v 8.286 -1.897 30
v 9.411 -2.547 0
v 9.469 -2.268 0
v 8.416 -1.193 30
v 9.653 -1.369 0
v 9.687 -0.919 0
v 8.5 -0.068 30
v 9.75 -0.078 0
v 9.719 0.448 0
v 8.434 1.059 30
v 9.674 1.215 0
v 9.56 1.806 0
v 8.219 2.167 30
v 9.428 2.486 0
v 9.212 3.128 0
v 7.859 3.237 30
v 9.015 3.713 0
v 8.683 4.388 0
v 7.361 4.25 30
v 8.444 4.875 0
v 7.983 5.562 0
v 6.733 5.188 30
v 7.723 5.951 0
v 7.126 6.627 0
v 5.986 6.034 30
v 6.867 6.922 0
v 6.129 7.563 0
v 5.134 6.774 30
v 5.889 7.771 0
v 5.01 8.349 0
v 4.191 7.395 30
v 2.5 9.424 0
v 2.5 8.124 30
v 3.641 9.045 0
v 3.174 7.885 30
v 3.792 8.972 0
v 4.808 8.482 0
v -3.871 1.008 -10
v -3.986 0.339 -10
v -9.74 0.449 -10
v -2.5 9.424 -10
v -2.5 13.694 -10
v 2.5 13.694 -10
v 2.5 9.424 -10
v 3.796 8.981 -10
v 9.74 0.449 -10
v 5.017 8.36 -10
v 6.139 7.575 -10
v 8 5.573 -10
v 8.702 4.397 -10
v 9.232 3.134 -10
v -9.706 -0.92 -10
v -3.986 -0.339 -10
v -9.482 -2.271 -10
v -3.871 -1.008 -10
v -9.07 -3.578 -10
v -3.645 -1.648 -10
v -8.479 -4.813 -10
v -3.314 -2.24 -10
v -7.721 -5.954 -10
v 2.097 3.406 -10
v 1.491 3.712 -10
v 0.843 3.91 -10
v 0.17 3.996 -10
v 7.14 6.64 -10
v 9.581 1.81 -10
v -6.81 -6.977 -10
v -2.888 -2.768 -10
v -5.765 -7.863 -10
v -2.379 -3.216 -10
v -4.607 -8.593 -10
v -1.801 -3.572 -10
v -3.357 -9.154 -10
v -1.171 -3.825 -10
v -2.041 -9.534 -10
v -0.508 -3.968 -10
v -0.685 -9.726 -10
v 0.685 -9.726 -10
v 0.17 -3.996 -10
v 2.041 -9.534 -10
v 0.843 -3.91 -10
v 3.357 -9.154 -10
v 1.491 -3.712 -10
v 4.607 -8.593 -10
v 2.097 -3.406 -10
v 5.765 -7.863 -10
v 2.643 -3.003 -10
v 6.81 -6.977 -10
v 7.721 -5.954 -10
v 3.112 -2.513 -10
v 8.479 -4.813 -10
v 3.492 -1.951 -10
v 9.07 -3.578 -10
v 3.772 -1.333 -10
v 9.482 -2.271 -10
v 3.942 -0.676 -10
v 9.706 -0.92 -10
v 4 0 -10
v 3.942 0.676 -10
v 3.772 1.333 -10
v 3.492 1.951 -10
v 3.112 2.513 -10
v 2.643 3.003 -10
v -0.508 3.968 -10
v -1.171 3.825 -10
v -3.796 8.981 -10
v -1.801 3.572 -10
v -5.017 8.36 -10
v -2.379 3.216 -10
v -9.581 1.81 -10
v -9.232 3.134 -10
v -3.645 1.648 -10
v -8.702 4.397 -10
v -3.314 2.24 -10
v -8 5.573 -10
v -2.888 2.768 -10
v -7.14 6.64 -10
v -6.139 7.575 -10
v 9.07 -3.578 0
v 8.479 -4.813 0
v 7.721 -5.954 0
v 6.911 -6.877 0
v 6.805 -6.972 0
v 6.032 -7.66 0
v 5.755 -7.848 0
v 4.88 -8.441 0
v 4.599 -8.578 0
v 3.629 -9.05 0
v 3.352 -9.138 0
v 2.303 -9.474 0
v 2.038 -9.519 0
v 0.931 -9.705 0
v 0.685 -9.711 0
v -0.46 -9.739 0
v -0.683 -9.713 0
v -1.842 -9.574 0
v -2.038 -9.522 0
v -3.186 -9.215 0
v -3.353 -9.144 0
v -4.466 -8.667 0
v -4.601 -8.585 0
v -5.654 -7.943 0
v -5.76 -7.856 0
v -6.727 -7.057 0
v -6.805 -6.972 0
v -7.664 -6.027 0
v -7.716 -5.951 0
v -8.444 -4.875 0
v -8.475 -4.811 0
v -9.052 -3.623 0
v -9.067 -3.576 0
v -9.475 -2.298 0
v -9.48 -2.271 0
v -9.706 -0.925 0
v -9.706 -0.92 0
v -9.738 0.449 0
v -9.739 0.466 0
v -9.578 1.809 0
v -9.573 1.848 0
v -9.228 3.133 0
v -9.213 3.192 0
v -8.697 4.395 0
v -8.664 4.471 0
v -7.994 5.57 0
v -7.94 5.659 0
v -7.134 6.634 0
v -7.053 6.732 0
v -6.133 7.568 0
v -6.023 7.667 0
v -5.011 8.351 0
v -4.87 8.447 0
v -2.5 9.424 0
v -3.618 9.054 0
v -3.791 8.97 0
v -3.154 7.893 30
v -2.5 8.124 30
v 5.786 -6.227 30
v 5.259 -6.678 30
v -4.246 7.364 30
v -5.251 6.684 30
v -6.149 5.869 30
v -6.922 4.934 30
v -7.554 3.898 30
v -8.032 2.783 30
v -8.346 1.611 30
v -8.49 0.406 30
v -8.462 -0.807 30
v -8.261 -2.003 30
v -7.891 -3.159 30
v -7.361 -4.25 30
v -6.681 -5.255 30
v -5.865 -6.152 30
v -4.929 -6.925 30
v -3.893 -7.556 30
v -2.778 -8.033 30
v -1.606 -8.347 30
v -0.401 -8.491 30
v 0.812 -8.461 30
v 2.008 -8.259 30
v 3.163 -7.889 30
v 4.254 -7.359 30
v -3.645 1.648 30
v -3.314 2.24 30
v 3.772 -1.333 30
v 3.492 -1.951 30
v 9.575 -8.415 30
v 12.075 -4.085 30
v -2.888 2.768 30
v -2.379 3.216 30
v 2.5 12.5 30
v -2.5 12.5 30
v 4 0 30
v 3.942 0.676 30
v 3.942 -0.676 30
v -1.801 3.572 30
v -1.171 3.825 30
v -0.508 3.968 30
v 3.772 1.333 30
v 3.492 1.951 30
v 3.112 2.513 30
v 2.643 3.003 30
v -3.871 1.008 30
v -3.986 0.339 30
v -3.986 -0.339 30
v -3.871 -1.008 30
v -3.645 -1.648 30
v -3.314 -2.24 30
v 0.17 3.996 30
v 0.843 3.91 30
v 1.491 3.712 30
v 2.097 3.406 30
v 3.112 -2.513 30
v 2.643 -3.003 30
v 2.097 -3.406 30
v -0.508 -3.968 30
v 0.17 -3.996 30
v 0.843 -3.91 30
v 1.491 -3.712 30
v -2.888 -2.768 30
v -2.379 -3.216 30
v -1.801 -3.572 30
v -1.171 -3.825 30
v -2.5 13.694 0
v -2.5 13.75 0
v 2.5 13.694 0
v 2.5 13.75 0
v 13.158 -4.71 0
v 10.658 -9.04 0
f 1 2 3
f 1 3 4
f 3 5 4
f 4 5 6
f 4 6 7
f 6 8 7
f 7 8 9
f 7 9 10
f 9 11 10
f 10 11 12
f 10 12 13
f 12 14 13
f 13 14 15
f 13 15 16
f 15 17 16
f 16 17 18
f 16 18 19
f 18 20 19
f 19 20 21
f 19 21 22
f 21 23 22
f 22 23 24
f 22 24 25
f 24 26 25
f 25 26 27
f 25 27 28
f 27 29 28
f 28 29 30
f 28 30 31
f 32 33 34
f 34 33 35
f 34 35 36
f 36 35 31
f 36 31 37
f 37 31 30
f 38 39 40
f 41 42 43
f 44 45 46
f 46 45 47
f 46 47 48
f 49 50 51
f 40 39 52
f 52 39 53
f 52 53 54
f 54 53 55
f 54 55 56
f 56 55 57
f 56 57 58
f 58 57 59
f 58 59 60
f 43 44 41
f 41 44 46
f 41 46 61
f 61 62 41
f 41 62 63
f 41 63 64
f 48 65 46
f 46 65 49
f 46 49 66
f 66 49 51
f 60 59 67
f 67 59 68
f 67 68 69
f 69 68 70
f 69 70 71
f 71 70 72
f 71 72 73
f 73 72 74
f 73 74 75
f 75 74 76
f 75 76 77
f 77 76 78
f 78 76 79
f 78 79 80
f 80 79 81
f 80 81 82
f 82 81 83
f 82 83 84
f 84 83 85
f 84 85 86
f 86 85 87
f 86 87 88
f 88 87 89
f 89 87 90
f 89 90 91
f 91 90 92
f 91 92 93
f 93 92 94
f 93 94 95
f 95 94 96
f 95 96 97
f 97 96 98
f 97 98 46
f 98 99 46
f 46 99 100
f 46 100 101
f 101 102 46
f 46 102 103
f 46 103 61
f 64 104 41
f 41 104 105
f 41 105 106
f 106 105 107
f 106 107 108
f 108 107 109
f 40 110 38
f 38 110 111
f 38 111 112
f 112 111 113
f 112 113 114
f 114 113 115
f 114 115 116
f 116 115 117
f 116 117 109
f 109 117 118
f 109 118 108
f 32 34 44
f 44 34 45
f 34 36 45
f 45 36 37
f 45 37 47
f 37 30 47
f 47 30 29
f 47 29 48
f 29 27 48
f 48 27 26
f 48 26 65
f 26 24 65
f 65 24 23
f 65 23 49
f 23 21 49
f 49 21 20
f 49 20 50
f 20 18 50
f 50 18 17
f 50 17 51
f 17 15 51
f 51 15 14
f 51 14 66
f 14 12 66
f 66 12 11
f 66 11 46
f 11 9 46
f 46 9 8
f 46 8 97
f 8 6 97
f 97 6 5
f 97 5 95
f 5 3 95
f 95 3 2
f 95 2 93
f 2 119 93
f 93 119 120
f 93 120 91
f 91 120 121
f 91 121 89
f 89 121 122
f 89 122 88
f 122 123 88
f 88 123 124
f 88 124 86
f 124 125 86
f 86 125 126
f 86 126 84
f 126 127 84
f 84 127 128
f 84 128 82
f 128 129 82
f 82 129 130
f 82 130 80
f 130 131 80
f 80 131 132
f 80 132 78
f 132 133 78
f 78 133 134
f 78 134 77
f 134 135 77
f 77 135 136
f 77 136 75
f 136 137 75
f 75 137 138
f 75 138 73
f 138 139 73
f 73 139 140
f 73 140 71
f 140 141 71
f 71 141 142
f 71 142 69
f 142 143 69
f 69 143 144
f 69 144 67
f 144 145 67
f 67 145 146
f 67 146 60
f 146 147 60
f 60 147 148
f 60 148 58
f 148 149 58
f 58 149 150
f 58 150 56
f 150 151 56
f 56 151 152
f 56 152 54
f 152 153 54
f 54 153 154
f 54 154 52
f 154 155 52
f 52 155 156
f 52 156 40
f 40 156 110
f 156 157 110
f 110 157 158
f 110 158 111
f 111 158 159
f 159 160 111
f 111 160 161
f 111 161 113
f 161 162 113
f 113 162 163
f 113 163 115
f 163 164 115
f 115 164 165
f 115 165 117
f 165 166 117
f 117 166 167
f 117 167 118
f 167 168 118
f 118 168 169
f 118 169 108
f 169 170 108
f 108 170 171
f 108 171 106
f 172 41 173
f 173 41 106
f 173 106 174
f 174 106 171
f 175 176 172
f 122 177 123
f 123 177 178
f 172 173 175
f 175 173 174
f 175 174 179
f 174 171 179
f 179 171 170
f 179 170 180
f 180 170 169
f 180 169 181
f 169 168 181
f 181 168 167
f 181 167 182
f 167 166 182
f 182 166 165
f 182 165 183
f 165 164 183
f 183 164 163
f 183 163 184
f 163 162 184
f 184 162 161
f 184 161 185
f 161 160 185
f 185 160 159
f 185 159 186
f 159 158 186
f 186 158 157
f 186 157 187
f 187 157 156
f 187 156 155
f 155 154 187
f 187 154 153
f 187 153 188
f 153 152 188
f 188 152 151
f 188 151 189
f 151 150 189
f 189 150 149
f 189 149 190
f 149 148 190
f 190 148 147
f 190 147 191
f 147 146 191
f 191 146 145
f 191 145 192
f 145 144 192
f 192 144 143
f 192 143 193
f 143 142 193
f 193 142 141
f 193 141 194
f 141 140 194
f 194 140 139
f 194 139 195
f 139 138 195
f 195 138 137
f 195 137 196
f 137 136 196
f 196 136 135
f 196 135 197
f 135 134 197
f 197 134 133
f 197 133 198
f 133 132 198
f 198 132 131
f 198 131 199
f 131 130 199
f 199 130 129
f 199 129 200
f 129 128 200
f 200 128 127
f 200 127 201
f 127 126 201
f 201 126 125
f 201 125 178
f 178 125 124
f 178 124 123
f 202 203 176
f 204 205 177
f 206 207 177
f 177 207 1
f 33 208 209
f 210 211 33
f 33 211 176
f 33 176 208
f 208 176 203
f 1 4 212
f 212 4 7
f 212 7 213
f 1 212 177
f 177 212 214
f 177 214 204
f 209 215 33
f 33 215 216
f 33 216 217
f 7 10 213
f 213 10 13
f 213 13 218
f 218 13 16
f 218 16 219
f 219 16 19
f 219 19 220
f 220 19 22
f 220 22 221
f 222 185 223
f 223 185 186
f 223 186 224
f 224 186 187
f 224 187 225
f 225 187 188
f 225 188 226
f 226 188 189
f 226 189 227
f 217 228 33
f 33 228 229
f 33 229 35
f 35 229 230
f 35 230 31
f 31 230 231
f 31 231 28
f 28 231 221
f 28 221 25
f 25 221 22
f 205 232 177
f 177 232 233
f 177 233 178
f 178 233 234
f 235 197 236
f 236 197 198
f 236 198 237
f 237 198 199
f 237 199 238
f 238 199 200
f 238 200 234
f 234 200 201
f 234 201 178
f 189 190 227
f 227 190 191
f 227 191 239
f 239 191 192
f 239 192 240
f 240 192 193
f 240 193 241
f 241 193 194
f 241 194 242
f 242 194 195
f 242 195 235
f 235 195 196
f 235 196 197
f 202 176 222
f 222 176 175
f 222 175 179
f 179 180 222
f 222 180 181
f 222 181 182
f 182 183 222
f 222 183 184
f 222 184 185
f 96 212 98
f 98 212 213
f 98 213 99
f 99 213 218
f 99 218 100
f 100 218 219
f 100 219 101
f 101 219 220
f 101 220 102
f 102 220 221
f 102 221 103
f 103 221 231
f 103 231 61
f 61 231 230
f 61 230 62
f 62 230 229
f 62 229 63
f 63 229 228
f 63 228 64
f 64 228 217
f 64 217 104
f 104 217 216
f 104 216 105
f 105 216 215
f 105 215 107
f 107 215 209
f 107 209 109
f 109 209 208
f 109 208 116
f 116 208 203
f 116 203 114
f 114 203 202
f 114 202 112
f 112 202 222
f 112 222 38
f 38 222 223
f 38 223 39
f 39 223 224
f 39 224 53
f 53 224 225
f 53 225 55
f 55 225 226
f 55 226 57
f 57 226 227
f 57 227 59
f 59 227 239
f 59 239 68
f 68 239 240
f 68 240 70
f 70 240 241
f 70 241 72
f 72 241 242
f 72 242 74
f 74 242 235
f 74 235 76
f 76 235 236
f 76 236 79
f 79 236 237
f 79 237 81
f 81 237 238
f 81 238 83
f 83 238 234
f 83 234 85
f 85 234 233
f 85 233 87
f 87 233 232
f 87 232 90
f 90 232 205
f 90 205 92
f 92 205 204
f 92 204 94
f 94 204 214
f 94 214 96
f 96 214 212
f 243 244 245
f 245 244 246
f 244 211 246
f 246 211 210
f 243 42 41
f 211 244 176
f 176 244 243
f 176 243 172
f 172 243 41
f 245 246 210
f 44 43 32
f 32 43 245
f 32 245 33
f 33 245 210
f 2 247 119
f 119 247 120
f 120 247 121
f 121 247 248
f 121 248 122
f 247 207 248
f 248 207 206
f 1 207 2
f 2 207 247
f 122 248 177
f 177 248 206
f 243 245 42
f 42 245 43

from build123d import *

# Parameters (mm, degrees)
SKETCH1_R           = 8.5
SKETCH1_R_2         = 4
BOSS_EXTRUDE1_DEPTH = 30
SKETCH2_R           = 9.75
BOSS_EXTRUDE2_DEPTH = 10
SKETCH4_R           = 4
CUT_EXTRUDE1_DEPTH  = 40
SKETCH6_W           = 5
SKETCH6_H           = 6.142281657
SKETCH5_W           = 5
SKETCH5_H           = 5.134988922
CIRPATTERN1_COUNT   = 2
CIRPATTERN1_ANGLE   = 240
SKETCH7_W           = 5
SKETCH7_H           = 5.55011225
BOSS_EXTRUDE3_DEPTH = 10


with BuildPart() as part:
    # Sketch1 → Boss-Extrude1 (new body)
    with BuildSketch(Plane.XY):
        Circle(SKETCH1_R)
        Circle(SKETCH1_R_2, mode=Mode.SUBTRACT)
    extrude(amount=BOSS_EXTRUDE1_DEPTH)

    # Sketch2 → Boss-Extrude2 (add)
    with BuildSketch(Plane(origin=(0, 0, 0), x_dir=(-1, 0, 0), z_dir=(0, 0, -1))):
        Circle(SKETCH2_R)
    extrude(amount=BOSS_EXTRUDE2_DEPTH)

    # loft up to a face of the part (loft4)
    loft([Face(Wire([part.edges().sort_by_distance((-5.8186504, 6.196233333, 30))[0]])), Face(Wire([part.edges().sort_by_distance((6.674334283, -7.107444117, 0))[0]]))])

    # Sketch4 → Cut-Extrude1 (cut)
    with BuildSketch(Plane.XY.offset(30)):
        Circle(SKETCH4_R)
    extrude(amount=-CUT_EXTRUDE1_DEPTH, mode=Mode.SUBTRACT)

    # Sketch6 → Loft5 section 0
    with BuildSketch(Plane.XY.offset(30)):
        with Locations((0, 9.428859172)):
            Rectangle(SKETCH6_W, SKETCH6_H)
    # Sketch5 → Loft5 section 1
    with BuildSketch(Plane.XY):
        with Locations((0, 11.182505539)):
            Rectangle(SKETCH5_W, SKETCH5_H)
    loft5 = loft()

    # CirPattern1: Loft5 ×2 about axis
    cirpattern1_axis = Axis((0, 0, 0), (0, 0, 1))
    for i in range(1, CIRPATTERN1_COUNT):
        add(loft5.rotate(cirpattern1_axis, i * CIRPATTERN1_ANGLE / (CIRPATTERN1_COUNT - 1)))

    # Sketch7 → Boss-Extrude3 (add)
    with BuildSketch(Plane(origin=(0, 0, -10), x_dir=(-1, 0, 0), z_dir=(0, 0, -1))):
        with Locations((0, 10.919421432)):
            Rectangle(SKETCH7_W, SKETCH7_H)
    extrude(amount=-BOSS_EXTRUDE3_DEPTH)


solid = part.part
